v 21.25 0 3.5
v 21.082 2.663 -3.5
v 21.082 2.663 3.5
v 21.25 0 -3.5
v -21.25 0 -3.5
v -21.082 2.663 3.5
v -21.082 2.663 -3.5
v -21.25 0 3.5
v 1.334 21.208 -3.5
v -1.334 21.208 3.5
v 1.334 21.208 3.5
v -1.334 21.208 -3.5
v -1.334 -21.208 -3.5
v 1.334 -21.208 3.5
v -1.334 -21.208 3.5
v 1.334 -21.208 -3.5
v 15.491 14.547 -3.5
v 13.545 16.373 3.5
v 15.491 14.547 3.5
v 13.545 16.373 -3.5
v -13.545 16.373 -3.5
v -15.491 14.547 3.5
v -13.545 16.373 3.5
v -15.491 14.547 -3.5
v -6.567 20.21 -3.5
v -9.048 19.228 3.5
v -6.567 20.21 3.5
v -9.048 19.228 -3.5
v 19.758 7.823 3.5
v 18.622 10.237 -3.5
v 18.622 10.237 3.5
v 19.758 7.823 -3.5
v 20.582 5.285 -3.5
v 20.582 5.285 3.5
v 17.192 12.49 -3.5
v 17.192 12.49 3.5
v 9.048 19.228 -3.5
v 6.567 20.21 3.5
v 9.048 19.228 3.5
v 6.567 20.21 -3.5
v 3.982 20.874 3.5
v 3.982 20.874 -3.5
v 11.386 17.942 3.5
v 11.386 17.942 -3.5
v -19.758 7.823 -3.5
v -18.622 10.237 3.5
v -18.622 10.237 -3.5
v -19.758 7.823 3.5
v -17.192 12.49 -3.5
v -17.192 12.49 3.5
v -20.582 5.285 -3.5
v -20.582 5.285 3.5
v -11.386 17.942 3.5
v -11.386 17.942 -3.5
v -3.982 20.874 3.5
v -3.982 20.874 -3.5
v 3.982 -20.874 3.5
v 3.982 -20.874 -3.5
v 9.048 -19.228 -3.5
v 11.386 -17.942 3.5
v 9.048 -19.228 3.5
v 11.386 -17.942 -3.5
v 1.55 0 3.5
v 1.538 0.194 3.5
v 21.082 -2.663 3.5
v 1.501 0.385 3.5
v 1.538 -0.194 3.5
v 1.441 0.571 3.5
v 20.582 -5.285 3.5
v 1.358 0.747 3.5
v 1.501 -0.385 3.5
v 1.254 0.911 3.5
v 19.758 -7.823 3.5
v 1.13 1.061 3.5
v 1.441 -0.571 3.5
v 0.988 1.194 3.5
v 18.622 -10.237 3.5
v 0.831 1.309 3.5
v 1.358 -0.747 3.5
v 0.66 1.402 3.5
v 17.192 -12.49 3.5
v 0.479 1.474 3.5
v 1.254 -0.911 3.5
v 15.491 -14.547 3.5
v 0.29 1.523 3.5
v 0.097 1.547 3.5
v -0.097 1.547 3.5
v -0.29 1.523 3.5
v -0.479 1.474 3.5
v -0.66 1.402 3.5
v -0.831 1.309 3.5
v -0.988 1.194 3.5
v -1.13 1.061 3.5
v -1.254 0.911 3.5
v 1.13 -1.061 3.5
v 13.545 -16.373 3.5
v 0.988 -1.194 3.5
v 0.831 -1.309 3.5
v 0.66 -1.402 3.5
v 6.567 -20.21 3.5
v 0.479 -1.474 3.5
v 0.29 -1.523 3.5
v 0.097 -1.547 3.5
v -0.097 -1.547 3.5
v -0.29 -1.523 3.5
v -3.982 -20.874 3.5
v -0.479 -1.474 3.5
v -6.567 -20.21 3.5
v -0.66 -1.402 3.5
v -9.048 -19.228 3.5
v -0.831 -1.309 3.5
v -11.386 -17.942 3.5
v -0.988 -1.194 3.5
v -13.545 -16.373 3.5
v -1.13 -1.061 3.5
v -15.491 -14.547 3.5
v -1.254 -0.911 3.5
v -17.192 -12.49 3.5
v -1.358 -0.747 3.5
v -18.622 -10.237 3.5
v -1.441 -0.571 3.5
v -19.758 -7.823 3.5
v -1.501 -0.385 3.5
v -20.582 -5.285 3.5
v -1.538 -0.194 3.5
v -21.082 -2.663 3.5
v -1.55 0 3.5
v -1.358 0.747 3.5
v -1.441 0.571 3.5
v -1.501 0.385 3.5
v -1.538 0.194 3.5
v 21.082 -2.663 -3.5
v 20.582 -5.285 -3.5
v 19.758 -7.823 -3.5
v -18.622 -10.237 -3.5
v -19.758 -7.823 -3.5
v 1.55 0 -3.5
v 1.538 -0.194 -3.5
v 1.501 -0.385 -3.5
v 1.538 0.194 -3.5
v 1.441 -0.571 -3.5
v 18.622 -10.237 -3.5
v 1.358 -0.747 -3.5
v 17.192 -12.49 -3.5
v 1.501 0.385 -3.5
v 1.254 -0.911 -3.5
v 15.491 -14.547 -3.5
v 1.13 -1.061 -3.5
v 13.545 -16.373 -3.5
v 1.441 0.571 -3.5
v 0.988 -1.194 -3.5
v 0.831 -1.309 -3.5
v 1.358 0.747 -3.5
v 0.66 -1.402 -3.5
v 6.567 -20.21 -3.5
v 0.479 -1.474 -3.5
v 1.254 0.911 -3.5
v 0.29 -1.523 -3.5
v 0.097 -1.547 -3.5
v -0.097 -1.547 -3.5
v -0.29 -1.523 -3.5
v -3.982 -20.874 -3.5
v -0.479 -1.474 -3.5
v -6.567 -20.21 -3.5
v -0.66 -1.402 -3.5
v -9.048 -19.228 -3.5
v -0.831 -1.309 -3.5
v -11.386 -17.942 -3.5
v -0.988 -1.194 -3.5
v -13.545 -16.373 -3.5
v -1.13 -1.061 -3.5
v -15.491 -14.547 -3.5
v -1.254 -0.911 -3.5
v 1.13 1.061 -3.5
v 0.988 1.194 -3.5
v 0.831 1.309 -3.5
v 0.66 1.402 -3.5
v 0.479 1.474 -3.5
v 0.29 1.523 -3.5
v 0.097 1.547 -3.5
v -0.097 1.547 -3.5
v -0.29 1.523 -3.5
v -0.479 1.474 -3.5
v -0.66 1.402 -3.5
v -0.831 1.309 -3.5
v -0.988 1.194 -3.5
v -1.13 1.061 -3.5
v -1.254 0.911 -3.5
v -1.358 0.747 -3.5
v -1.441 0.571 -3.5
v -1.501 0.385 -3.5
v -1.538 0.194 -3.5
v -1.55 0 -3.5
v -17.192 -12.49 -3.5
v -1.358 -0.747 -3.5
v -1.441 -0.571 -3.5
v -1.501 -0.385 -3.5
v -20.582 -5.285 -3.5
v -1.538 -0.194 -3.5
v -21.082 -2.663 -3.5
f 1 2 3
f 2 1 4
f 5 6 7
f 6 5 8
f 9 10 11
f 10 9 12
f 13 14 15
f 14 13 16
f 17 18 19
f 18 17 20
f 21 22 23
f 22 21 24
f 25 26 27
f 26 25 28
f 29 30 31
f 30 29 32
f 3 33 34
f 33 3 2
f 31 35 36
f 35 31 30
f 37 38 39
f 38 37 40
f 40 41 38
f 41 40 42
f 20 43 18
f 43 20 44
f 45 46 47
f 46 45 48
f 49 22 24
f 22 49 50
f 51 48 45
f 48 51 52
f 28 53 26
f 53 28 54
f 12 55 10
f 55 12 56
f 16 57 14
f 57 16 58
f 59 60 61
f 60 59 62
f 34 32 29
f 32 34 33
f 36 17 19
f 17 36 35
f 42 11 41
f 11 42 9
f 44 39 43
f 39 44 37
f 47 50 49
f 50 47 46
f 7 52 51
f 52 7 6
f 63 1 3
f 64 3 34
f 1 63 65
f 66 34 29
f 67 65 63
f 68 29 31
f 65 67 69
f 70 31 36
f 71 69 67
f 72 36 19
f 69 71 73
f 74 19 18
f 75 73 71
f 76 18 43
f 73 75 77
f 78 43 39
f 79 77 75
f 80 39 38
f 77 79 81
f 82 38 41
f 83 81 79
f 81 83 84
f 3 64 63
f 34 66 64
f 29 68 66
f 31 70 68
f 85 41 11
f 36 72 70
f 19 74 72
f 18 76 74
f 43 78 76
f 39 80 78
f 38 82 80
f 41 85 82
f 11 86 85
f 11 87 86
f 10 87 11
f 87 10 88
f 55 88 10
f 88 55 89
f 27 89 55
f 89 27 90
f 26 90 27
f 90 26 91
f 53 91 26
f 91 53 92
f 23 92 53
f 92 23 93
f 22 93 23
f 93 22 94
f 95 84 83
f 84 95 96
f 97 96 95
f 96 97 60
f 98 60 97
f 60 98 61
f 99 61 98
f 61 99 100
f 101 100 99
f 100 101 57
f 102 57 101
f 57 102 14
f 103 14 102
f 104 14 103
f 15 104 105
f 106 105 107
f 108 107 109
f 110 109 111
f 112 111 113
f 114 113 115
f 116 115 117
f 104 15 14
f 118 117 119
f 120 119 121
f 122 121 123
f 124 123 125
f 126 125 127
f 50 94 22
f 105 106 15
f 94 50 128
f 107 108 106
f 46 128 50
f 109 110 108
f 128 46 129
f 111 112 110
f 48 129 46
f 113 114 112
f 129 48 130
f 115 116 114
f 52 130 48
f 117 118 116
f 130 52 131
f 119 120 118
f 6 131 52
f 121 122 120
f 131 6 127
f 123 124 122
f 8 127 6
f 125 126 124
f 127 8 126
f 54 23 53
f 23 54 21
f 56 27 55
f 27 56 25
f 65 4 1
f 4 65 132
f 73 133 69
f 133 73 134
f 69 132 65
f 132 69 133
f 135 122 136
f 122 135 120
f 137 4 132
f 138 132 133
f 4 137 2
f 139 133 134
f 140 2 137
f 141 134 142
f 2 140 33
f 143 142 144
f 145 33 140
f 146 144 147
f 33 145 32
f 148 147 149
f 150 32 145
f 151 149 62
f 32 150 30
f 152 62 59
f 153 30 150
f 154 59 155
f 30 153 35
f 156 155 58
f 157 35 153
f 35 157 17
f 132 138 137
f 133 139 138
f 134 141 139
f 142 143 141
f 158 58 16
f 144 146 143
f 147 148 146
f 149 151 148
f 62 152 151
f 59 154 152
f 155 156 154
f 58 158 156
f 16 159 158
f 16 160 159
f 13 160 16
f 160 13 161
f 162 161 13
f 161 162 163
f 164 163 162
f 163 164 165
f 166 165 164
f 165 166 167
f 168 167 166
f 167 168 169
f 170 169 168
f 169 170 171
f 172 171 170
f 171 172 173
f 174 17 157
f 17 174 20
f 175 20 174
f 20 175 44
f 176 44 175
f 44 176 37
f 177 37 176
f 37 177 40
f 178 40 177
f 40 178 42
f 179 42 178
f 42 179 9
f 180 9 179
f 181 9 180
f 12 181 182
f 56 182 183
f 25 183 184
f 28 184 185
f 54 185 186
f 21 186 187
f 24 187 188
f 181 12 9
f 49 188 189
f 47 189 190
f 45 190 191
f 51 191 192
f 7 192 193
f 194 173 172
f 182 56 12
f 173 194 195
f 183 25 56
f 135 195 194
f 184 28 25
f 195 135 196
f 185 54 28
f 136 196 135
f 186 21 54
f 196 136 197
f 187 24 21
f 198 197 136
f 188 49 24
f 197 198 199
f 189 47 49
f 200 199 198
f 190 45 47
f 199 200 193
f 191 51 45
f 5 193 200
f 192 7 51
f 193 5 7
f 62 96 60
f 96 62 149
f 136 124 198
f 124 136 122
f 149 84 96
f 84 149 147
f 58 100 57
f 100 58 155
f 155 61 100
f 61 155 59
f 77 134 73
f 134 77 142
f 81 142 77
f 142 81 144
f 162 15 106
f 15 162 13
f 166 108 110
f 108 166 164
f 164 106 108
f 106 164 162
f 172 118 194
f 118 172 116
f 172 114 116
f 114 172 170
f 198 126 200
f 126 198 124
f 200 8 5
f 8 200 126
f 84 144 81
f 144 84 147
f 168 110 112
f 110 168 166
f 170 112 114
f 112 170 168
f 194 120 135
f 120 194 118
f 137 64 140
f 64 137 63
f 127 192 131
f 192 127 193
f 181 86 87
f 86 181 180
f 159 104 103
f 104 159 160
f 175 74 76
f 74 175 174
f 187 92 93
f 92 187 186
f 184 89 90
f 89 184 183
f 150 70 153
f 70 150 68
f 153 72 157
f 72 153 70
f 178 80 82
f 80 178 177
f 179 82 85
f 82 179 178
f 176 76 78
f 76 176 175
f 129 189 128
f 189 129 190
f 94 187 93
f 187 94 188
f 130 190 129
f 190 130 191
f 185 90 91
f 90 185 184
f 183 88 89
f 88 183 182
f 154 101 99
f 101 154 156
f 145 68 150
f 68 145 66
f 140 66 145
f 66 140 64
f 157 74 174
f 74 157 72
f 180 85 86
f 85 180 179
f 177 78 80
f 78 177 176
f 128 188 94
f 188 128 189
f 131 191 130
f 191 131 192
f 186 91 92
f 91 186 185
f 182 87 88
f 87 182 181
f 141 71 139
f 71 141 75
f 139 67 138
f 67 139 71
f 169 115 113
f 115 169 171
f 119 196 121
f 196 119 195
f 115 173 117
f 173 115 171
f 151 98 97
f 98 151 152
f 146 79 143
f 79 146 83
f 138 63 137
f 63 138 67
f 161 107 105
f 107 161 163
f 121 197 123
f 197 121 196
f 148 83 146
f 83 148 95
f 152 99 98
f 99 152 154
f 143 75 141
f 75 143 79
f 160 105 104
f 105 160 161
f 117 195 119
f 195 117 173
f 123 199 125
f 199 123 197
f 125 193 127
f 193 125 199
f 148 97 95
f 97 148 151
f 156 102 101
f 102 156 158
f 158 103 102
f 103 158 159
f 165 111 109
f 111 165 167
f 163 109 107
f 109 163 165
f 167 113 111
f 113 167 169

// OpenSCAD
$fn = 50;


difference() {
	union() {
		translate(v = [0, 0, -3.5000000000]) {
			cylinder(h = 7, r = 21.2500000000);
		}
	}
	union() {
		translate(v = [0, 0, -100.0000000000]) {
			cylinder(h = 200, r = 1.5500000000);
		}
	}
}
